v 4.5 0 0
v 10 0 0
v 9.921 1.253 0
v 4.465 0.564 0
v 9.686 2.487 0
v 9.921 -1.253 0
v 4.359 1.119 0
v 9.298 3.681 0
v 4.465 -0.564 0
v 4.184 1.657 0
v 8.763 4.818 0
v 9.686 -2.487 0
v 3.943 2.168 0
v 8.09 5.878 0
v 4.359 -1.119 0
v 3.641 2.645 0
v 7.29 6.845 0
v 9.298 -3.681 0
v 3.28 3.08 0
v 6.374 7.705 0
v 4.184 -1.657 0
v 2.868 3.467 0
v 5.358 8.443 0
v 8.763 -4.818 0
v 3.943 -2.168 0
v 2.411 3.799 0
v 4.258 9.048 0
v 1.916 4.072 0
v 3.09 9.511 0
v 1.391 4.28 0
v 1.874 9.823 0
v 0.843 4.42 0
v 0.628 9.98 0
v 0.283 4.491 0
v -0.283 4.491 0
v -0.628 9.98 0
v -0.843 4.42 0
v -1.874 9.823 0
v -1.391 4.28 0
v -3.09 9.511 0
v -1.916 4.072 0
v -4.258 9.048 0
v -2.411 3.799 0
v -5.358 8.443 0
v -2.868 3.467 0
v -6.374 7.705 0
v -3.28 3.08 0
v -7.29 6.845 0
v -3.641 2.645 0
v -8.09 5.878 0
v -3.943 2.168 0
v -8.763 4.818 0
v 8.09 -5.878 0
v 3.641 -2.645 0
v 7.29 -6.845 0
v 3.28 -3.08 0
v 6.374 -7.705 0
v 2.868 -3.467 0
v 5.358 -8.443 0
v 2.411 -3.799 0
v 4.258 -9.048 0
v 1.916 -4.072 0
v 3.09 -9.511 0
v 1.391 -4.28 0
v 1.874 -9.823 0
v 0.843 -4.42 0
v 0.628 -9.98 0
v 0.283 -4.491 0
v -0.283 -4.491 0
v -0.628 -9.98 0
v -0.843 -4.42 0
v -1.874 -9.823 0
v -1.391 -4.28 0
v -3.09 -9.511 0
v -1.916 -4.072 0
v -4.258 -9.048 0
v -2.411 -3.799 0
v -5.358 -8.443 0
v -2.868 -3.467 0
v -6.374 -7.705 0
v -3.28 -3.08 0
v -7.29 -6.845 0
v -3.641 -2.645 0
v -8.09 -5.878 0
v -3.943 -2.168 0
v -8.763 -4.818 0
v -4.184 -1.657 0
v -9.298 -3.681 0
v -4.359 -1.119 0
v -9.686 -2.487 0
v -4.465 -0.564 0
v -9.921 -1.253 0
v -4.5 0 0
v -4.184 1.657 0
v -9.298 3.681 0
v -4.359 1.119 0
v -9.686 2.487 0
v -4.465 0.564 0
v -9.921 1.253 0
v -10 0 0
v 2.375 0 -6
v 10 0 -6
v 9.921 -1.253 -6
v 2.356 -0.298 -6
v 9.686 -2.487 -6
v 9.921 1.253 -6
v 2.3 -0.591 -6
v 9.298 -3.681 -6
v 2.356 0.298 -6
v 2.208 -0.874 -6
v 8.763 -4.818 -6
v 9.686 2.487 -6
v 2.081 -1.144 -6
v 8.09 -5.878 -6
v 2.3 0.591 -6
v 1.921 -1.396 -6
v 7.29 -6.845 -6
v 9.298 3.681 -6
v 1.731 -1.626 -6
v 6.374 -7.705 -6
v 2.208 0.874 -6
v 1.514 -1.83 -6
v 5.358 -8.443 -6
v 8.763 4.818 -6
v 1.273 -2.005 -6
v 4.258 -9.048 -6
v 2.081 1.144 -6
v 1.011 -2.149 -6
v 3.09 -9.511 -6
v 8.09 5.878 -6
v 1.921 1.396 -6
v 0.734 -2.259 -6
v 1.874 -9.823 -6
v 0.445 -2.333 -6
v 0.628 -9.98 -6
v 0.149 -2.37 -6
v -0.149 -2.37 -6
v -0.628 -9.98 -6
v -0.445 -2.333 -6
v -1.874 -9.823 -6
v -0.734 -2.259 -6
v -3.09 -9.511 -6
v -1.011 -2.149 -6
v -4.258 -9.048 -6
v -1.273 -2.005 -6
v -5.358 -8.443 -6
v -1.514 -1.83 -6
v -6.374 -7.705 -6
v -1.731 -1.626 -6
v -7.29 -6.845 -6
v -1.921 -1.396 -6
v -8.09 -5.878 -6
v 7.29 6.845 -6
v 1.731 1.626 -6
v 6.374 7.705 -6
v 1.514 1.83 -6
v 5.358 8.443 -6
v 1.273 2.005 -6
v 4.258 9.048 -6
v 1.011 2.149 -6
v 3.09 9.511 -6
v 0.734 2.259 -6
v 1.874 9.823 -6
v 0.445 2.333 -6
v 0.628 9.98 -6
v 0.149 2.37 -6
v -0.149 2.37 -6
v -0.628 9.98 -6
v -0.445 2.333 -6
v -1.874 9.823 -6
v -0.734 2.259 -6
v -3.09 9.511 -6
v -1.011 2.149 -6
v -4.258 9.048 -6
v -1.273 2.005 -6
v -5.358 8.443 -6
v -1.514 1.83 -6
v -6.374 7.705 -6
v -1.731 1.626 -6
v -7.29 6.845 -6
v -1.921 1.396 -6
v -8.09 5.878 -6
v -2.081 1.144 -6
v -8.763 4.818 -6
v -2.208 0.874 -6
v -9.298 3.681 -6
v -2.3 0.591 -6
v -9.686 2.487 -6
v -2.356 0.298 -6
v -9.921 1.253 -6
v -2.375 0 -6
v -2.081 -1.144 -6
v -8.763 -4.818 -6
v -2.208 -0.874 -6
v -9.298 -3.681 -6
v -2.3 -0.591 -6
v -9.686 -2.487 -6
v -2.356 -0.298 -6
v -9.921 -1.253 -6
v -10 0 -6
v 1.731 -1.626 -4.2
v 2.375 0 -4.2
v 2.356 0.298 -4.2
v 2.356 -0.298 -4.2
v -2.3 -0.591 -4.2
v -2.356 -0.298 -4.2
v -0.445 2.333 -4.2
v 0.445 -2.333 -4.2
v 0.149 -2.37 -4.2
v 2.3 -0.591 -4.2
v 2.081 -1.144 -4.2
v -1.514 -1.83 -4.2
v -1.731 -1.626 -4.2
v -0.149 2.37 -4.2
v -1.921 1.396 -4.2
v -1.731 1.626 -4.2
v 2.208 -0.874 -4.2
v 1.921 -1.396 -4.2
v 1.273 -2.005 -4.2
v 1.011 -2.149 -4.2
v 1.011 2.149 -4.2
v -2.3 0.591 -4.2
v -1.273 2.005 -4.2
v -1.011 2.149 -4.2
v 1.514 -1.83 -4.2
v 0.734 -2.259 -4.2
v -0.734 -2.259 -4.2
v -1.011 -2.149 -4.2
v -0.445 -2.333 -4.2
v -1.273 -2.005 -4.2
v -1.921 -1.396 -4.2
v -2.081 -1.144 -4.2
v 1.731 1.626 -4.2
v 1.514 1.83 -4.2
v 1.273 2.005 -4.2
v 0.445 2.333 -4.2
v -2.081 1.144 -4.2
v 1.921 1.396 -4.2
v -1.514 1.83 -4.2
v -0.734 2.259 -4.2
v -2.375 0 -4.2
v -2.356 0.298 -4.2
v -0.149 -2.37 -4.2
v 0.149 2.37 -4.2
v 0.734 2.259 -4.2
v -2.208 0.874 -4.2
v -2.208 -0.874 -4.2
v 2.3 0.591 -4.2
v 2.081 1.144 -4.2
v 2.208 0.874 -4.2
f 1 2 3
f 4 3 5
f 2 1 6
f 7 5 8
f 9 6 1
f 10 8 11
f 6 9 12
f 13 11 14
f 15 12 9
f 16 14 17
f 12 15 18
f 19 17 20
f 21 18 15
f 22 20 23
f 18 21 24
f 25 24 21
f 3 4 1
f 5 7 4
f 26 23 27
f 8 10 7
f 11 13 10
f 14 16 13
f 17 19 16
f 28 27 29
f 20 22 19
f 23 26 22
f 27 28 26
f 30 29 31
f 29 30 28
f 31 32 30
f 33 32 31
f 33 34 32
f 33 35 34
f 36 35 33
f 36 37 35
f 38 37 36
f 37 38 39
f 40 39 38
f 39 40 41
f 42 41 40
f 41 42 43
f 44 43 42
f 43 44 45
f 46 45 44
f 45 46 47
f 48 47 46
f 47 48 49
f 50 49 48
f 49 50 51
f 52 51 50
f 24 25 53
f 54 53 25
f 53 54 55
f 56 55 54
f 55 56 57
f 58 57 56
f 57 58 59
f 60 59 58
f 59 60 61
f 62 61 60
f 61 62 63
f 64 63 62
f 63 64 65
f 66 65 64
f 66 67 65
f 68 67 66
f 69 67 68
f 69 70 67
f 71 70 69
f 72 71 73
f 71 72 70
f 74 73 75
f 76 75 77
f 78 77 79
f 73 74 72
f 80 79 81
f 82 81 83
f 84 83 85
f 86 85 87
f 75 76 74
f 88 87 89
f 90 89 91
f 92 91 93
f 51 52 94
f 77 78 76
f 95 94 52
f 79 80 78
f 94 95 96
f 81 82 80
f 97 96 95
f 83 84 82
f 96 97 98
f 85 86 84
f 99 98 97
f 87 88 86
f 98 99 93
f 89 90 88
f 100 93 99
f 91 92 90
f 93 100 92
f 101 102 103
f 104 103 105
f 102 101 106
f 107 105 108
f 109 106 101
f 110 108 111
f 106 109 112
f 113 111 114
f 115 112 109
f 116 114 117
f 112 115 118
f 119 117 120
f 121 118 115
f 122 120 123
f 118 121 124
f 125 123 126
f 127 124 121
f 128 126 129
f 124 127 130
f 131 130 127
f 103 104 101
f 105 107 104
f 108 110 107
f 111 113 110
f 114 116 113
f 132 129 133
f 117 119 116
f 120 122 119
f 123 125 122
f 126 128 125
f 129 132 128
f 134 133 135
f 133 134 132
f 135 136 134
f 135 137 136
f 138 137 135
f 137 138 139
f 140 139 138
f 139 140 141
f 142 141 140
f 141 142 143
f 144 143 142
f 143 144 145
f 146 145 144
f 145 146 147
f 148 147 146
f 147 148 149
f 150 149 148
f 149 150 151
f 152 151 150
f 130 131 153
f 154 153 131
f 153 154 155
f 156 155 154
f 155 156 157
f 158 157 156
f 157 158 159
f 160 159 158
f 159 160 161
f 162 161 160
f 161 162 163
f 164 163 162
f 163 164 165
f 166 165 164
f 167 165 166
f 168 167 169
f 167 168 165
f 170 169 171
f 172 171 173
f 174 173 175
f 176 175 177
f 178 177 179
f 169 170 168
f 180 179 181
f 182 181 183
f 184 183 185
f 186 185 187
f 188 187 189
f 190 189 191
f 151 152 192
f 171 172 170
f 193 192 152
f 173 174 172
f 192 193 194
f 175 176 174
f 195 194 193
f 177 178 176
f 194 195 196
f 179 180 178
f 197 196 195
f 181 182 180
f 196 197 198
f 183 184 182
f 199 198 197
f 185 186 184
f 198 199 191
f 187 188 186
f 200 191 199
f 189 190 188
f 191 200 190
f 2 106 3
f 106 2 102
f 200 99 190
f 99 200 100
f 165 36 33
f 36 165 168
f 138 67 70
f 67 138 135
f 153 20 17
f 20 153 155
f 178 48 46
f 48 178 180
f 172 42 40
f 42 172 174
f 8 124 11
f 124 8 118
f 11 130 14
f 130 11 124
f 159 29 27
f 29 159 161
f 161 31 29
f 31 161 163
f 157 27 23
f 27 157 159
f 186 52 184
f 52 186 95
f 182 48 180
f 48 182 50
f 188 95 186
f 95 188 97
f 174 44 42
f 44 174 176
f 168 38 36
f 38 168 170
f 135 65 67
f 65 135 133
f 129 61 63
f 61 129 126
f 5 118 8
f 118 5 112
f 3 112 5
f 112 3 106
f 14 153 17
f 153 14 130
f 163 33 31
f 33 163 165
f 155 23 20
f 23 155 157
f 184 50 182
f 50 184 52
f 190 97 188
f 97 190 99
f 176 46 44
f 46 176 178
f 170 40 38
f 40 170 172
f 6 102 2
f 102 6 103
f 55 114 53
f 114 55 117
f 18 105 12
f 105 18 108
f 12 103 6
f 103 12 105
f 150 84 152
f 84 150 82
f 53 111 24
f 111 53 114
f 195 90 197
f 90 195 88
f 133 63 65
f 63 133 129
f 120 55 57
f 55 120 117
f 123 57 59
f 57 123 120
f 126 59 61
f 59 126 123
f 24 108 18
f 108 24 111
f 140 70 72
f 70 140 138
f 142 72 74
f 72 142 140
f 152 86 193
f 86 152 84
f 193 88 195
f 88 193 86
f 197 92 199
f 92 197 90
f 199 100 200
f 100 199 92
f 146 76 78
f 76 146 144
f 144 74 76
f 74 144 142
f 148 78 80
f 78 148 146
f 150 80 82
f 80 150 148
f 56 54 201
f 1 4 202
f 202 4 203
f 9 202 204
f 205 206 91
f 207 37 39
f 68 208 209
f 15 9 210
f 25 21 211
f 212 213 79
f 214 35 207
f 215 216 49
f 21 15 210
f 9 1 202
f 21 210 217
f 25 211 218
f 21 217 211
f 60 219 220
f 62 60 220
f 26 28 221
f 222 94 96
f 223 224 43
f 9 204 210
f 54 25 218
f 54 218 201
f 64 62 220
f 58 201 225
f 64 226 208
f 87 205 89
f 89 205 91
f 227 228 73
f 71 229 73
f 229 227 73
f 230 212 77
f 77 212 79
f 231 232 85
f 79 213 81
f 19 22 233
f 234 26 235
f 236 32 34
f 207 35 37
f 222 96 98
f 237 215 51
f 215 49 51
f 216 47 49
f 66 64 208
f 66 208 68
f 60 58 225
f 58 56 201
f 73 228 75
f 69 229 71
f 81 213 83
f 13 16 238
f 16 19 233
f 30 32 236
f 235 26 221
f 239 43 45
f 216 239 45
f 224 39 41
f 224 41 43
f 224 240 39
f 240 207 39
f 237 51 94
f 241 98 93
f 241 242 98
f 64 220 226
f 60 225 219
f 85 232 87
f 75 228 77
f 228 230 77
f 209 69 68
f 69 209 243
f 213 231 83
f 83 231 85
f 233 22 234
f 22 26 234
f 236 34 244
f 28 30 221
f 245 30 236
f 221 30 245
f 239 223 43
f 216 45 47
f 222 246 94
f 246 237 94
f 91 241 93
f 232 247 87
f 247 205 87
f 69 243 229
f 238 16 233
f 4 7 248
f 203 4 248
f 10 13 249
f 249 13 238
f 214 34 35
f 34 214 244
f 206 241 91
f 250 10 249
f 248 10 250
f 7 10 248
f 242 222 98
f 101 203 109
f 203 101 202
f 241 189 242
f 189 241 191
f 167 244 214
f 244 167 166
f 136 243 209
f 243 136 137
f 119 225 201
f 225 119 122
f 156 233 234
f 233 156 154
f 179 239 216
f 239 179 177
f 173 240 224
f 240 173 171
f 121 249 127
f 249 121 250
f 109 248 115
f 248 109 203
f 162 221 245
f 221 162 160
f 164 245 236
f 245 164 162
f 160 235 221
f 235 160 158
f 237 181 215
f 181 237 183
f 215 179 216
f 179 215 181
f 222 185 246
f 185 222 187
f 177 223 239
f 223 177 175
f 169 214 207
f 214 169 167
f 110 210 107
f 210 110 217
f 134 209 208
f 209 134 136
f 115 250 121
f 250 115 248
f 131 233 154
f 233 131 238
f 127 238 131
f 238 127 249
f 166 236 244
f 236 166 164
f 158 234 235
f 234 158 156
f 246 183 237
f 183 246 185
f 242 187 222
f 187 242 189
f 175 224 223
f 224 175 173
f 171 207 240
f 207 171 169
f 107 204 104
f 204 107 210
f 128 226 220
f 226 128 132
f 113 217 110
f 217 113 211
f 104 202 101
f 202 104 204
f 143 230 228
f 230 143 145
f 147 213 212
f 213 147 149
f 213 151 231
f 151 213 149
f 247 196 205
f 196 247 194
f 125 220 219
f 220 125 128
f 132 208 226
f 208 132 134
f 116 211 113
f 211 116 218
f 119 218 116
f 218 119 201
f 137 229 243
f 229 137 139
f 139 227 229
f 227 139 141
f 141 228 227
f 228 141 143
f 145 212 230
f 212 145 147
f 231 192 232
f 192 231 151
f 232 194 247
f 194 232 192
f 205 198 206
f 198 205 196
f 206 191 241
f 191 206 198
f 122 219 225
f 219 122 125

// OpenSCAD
$fn = 50;


difference() {
	union() {
		translate(v = [0, 0, -6.0000000000]) {
			cylinder(h = 6, r = 7.0000000000);
		}
		translate(v = [0, 0, -6.0000000000]) {
			cylinder(h = 6, r = 10.0000000000);
		}
	}
	union() {
		translate(v = [0, 0, 0]) {
			rotate(a = [0, 0, 0]) {
				difference() {
					union() {
						#translate(v = [0, 0, -6.0000000000]) {
							cylinder(h = 6, r = 2.2500000000);
						}
						#translate(v = [0, 0, -4.2000000000]) {
							cylinder(h = 4.2000000000, r = 7.0000000000, r1 = 2.3750000000, r2 = 4.5000000000);
						}
						#translate(v = [0, 0, -6.0000000000]) {
							cylinder(h = 6, r = 2.3750000000);
						}
						#translate(v = [0, 0, -6.0000000000]) {
							cylinder(h = 6, r = 2.2500000000);
						}
					}
					union();
				}
			}
		}
	}
}
